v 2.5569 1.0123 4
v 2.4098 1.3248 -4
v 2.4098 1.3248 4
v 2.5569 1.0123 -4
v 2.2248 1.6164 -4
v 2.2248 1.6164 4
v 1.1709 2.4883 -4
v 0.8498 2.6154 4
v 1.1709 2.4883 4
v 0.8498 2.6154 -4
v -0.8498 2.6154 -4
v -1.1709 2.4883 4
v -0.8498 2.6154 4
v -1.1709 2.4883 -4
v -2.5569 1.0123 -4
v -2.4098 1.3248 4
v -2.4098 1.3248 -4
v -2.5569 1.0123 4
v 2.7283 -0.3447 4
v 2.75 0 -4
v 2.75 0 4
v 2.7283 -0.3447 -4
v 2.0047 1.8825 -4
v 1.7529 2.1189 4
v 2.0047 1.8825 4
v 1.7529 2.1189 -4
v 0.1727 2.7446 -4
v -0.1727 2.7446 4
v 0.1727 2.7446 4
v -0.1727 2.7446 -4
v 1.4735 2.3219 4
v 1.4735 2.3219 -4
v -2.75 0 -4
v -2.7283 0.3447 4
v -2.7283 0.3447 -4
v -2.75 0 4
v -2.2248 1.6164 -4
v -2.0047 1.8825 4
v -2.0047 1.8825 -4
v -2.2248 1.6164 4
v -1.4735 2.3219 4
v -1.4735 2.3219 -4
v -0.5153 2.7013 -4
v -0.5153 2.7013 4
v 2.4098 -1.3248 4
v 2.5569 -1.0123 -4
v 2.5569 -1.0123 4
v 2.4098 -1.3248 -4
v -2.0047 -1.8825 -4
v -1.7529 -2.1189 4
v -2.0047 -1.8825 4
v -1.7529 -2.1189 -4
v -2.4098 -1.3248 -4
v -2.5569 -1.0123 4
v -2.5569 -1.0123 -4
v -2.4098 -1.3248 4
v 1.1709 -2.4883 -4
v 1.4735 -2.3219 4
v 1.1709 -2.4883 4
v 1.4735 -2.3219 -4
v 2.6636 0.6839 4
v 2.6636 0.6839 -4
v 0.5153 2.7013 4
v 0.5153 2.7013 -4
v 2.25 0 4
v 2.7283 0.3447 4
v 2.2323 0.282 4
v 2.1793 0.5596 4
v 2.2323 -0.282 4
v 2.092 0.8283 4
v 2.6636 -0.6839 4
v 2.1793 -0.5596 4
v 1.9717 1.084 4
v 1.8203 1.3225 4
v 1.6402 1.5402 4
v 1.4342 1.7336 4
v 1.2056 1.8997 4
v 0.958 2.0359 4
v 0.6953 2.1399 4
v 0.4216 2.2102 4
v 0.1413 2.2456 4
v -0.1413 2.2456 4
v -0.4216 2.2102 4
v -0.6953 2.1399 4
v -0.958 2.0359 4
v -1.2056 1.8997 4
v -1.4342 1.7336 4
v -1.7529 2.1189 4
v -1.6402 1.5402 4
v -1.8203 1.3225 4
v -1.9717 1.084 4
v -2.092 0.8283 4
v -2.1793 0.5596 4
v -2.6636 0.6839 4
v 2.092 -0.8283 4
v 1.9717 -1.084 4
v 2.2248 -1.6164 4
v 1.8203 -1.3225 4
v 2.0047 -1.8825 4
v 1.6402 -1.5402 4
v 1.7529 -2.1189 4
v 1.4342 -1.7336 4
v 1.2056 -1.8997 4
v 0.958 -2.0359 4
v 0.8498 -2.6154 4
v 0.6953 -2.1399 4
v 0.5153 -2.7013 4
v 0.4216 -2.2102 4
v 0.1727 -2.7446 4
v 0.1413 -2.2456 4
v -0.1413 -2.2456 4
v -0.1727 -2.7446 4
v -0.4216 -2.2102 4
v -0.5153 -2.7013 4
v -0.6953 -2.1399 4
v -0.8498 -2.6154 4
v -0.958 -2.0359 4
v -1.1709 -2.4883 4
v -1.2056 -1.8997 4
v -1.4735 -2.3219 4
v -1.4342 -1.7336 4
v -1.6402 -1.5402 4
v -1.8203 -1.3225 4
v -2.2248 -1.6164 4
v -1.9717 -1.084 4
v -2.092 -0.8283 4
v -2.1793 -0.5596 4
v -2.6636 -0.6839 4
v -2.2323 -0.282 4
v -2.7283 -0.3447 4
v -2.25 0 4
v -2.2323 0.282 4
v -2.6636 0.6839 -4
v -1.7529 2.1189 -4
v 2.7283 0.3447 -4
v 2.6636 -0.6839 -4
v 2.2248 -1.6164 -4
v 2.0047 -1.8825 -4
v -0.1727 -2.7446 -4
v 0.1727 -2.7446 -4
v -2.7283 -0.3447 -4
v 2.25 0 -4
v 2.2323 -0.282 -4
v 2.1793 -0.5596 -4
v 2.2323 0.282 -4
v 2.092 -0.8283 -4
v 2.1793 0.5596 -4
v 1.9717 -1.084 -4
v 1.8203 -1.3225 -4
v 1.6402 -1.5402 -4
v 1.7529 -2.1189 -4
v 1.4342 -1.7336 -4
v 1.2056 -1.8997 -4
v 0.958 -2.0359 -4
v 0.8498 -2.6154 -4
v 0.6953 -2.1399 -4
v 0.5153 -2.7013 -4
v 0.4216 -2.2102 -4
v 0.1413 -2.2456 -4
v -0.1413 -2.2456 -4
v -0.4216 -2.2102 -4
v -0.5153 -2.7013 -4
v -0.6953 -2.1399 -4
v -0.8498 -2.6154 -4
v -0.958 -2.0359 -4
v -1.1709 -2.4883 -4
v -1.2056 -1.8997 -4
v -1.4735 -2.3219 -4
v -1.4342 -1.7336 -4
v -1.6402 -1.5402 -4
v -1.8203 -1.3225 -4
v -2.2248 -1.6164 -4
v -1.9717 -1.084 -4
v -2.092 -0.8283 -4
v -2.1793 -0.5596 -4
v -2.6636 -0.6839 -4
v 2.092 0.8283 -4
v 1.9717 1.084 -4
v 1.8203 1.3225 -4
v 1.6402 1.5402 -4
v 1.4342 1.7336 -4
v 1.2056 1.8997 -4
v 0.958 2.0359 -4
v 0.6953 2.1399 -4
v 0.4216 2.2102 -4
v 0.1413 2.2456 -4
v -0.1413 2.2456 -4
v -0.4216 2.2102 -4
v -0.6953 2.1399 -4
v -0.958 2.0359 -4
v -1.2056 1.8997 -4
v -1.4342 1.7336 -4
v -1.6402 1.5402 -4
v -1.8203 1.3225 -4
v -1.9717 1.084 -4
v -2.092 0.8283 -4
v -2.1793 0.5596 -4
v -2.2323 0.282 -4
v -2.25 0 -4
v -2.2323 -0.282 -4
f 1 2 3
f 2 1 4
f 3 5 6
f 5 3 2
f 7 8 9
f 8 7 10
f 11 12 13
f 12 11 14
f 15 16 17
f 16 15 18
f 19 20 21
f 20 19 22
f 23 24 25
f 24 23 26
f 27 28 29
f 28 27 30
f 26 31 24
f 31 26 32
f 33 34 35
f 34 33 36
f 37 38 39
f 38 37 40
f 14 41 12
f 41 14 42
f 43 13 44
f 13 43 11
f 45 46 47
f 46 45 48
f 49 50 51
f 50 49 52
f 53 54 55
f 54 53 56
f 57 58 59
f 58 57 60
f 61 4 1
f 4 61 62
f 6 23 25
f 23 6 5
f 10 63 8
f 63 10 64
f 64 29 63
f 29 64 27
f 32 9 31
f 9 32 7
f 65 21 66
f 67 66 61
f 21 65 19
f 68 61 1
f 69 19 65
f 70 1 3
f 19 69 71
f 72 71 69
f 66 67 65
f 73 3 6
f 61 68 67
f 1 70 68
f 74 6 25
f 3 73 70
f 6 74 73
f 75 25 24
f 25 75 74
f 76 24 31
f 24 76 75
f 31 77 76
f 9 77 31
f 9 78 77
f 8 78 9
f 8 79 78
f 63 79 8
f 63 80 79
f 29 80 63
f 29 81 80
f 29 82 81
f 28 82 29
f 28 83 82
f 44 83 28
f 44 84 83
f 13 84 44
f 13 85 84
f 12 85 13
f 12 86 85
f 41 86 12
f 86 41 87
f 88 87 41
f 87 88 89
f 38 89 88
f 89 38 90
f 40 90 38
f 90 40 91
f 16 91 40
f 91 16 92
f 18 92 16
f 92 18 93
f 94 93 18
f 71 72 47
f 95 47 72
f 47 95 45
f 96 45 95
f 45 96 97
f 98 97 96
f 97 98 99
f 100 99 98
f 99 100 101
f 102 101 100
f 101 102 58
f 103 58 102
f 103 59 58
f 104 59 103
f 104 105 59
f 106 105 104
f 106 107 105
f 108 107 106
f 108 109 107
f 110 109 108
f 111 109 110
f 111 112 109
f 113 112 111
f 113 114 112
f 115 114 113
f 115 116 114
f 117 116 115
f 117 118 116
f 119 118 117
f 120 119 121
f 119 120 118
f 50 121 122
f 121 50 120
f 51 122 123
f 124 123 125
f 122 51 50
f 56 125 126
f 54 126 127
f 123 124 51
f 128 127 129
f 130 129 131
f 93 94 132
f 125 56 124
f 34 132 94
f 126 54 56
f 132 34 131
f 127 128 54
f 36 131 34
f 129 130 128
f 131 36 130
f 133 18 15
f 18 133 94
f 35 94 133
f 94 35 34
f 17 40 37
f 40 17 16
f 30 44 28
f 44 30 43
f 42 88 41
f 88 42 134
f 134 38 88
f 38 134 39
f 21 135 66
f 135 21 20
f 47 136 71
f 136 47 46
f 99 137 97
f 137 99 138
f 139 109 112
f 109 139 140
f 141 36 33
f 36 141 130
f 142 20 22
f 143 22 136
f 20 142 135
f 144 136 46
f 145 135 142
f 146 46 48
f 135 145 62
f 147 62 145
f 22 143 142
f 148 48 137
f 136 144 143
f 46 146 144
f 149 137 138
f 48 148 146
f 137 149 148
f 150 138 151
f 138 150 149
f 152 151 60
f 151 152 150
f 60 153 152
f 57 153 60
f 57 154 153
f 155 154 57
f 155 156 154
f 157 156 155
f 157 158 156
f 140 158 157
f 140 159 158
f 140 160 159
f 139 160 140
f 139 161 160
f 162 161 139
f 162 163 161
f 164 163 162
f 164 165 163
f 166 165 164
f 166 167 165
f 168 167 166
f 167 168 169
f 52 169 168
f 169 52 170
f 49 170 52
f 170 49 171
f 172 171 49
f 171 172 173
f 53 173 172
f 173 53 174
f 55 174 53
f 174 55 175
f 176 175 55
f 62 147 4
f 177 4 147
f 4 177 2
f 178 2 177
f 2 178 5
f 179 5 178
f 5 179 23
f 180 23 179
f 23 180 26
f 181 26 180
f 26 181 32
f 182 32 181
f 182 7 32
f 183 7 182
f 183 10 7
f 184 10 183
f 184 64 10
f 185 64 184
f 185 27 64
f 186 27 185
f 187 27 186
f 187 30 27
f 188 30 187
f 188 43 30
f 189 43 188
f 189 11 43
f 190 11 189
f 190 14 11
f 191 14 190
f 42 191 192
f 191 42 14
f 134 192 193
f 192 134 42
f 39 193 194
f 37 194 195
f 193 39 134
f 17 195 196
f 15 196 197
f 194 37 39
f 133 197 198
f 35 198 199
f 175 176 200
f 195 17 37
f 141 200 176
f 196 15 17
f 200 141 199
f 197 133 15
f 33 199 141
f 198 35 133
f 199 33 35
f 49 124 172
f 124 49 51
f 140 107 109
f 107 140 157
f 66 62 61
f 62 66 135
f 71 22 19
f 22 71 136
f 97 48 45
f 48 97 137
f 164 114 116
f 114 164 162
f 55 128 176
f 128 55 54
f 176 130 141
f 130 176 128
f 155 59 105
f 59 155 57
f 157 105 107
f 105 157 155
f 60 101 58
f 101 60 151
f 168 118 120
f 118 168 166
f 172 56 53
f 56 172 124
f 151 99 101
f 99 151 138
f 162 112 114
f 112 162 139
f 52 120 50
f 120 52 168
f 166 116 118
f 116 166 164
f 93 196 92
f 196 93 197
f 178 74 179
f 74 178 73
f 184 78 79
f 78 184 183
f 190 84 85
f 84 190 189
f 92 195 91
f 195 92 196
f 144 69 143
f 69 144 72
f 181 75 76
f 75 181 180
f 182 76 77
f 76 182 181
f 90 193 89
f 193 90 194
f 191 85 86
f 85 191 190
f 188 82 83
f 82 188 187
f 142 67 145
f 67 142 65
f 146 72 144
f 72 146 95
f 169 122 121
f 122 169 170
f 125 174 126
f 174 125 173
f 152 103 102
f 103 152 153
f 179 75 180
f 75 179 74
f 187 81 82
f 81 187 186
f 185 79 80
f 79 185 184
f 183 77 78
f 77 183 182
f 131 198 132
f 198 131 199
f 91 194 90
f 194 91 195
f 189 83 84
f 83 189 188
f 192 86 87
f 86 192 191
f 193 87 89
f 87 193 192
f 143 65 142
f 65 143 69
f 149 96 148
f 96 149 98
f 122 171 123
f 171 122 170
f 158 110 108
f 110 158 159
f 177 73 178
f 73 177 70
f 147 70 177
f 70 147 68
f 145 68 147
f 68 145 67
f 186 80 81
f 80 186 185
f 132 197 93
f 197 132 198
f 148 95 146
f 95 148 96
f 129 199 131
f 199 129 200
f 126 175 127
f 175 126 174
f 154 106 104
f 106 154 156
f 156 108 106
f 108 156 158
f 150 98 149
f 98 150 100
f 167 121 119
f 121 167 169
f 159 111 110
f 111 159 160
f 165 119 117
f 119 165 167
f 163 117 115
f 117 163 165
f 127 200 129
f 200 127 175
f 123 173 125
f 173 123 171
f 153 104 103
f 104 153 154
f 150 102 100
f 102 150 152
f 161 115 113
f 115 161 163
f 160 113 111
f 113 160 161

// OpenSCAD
$fn = 50;


difference() {
	union() {
		translate(v = [0, 0, -4.0000000000]) {
			cylinder(h = 8, r = 2.7500000000);
		}
	}
	union() {
		translate(v = [0, 0, -100.0000000000]) {
			cylinder(h = 200, r = 2.2500000000);
		}
	}
}
